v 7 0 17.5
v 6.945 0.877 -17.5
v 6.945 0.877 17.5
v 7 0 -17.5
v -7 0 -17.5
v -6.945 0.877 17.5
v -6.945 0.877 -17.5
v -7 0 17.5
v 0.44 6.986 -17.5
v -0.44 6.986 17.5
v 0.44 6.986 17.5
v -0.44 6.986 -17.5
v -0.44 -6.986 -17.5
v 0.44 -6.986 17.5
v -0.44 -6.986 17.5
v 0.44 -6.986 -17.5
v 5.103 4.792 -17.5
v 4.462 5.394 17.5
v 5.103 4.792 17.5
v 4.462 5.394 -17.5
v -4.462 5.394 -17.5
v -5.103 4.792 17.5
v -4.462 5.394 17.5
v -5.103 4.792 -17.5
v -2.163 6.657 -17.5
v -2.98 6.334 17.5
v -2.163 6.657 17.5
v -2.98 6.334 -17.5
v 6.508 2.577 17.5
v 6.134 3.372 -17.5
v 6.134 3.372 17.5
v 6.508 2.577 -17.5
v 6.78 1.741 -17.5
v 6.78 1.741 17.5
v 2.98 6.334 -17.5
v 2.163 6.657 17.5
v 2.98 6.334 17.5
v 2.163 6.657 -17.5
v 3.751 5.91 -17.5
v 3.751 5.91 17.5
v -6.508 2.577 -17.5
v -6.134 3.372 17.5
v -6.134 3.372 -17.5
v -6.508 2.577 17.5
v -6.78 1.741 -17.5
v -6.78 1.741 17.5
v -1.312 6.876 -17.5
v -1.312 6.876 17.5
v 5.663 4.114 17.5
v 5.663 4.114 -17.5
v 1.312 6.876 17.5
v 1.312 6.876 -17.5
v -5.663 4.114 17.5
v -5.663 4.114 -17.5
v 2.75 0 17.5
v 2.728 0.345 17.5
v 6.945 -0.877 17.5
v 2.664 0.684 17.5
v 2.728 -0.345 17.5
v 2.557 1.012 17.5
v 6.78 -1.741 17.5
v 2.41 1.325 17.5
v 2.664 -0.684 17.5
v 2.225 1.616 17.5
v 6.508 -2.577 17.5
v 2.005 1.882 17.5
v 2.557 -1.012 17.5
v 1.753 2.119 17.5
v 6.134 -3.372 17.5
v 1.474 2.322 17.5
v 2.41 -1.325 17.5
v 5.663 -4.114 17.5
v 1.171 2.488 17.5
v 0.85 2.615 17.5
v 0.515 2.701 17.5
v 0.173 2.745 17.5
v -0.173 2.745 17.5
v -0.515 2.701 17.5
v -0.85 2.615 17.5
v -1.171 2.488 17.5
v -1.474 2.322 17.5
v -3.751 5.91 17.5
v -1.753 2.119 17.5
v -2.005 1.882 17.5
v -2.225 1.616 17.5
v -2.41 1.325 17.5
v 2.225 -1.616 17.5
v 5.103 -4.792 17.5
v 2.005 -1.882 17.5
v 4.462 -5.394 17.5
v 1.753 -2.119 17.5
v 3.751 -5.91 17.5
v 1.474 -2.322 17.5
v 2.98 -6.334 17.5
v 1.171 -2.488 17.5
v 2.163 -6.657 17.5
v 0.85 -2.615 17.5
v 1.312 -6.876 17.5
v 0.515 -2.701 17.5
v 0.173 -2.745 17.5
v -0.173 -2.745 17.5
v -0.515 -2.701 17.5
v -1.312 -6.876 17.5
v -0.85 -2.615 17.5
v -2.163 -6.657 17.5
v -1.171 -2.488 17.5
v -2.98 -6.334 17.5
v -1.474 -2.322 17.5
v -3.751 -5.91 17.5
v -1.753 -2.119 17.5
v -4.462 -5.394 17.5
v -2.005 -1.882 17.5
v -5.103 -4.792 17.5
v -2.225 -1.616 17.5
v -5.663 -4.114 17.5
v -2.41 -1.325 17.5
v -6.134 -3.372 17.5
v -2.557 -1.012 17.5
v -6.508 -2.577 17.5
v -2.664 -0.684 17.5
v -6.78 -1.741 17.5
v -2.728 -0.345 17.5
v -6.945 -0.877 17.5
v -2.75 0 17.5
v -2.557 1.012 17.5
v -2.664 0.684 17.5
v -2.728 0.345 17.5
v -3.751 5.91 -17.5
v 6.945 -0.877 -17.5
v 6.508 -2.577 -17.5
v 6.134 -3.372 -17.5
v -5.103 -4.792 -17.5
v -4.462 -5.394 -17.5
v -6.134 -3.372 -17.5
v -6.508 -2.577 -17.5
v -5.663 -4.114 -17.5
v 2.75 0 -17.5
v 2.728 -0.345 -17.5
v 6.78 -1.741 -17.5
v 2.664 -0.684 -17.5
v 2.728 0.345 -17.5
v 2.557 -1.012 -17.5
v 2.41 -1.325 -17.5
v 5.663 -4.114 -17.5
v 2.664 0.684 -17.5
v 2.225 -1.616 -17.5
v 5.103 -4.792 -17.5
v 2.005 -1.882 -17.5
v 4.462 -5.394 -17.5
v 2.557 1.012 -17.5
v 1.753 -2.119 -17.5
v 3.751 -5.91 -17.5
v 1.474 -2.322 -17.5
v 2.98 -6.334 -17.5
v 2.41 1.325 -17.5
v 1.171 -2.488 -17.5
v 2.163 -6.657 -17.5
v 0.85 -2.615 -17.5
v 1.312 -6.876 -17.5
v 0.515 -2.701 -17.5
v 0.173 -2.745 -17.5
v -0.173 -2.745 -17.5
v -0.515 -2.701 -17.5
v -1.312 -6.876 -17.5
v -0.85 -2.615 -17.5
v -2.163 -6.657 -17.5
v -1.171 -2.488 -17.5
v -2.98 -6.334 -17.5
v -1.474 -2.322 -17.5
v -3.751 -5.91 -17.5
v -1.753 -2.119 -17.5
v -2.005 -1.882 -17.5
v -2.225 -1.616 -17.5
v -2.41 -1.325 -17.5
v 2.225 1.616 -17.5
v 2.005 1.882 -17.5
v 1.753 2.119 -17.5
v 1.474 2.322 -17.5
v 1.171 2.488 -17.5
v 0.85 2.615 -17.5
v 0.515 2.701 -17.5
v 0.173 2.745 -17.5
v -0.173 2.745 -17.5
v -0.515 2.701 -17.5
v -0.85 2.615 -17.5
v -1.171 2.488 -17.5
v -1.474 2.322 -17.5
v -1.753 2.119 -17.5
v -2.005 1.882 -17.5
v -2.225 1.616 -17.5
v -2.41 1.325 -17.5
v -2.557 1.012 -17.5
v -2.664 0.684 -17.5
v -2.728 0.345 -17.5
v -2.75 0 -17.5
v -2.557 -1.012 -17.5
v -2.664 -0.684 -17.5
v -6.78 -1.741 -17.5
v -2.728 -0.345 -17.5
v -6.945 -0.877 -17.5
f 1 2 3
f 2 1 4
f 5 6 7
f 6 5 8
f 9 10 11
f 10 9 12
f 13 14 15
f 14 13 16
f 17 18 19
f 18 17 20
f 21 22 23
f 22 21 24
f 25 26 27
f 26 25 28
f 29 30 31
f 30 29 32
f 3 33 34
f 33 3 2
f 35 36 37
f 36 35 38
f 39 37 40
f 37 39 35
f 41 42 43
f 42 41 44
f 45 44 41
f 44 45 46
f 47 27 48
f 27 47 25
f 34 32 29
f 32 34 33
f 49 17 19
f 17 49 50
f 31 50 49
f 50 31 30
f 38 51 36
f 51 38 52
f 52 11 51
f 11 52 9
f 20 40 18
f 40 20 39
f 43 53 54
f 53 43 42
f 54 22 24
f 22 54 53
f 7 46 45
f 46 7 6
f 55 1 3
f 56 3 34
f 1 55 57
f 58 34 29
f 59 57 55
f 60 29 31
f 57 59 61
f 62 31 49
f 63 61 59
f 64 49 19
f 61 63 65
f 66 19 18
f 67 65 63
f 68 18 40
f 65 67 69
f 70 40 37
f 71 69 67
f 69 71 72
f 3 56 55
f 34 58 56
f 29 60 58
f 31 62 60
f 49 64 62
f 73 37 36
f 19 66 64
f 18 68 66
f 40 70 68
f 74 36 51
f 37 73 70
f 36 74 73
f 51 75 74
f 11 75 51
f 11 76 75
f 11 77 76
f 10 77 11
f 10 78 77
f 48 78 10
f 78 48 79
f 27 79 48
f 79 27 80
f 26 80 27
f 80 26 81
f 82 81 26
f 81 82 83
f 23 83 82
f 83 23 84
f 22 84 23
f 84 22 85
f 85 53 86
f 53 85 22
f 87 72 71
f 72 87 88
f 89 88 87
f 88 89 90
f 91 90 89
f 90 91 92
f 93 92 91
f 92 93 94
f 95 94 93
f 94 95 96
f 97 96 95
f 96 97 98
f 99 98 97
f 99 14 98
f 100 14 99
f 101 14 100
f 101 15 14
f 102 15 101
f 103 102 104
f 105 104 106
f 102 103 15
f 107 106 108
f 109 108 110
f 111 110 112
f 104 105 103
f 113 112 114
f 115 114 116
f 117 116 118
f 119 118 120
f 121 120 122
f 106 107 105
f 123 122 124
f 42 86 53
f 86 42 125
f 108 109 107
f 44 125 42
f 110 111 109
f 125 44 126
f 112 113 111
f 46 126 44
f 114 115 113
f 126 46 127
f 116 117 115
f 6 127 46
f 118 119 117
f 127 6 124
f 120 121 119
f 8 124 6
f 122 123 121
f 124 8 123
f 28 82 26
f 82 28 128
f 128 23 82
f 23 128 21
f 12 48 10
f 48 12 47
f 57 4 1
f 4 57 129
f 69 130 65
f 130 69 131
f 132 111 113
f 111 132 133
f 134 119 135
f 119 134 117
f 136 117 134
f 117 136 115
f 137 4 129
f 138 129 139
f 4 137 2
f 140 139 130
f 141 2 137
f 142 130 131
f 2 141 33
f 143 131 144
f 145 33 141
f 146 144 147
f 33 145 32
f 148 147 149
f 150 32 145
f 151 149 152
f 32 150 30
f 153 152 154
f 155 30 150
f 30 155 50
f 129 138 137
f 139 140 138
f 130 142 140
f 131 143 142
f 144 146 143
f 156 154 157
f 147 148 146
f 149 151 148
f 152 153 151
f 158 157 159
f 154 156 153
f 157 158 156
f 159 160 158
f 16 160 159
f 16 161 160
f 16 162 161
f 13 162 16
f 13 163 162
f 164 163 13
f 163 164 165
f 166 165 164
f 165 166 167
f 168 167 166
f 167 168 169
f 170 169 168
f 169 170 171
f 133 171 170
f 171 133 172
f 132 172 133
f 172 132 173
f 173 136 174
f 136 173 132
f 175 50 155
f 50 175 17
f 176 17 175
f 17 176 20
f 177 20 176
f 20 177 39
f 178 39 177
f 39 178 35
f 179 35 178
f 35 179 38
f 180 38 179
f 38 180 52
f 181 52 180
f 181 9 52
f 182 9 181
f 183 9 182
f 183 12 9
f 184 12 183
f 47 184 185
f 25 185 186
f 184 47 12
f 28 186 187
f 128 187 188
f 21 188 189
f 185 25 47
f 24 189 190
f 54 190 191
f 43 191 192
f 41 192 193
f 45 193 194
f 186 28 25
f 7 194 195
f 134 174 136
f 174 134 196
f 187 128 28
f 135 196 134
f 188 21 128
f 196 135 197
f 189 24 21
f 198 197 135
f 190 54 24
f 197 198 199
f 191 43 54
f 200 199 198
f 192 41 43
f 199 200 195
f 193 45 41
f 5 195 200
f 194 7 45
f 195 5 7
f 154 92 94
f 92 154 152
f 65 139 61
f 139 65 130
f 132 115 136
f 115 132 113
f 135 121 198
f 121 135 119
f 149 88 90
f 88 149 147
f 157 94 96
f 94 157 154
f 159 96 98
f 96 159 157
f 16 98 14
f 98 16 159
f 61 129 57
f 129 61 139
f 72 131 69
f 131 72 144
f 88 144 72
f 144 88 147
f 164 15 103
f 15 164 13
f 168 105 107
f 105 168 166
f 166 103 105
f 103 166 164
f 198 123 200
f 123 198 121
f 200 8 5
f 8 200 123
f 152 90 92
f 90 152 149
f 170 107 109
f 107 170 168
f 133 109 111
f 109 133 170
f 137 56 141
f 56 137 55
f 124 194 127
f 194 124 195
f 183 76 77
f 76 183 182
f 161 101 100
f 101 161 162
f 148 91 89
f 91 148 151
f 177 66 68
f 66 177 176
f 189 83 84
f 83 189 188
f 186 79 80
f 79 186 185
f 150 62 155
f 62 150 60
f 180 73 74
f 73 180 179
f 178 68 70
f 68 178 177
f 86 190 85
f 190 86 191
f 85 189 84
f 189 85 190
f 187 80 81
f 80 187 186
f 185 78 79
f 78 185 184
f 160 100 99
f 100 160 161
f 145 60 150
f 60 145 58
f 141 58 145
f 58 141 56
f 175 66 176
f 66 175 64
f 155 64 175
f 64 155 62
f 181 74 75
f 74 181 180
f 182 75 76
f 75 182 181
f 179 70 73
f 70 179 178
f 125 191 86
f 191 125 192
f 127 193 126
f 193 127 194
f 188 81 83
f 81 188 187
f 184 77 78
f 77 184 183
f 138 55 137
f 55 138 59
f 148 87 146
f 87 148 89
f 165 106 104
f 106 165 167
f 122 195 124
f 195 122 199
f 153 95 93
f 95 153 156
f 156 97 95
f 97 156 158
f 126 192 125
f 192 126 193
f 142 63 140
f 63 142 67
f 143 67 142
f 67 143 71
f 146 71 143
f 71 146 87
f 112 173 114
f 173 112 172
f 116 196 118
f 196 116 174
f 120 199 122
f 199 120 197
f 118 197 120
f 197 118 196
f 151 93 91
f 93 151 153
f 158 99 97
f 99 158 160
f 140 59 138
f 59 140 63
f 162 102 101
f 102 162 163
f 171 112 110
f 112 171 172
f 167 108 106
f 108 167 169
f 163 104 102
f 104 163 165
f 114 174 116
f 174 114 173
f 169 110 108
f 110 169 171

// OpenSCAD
$fn = 50;


difference() {
	union() {
		translate(v = [0, 0, -17.5000000000]) {
			cylinder(h = 35, r = 7.0000000000);
		}
	}
	union() {
		translate(v = [0, 0, -100.0000000000]) {
			cylinder(h = 200, r = 2.7500000000);
		}
	}
}
